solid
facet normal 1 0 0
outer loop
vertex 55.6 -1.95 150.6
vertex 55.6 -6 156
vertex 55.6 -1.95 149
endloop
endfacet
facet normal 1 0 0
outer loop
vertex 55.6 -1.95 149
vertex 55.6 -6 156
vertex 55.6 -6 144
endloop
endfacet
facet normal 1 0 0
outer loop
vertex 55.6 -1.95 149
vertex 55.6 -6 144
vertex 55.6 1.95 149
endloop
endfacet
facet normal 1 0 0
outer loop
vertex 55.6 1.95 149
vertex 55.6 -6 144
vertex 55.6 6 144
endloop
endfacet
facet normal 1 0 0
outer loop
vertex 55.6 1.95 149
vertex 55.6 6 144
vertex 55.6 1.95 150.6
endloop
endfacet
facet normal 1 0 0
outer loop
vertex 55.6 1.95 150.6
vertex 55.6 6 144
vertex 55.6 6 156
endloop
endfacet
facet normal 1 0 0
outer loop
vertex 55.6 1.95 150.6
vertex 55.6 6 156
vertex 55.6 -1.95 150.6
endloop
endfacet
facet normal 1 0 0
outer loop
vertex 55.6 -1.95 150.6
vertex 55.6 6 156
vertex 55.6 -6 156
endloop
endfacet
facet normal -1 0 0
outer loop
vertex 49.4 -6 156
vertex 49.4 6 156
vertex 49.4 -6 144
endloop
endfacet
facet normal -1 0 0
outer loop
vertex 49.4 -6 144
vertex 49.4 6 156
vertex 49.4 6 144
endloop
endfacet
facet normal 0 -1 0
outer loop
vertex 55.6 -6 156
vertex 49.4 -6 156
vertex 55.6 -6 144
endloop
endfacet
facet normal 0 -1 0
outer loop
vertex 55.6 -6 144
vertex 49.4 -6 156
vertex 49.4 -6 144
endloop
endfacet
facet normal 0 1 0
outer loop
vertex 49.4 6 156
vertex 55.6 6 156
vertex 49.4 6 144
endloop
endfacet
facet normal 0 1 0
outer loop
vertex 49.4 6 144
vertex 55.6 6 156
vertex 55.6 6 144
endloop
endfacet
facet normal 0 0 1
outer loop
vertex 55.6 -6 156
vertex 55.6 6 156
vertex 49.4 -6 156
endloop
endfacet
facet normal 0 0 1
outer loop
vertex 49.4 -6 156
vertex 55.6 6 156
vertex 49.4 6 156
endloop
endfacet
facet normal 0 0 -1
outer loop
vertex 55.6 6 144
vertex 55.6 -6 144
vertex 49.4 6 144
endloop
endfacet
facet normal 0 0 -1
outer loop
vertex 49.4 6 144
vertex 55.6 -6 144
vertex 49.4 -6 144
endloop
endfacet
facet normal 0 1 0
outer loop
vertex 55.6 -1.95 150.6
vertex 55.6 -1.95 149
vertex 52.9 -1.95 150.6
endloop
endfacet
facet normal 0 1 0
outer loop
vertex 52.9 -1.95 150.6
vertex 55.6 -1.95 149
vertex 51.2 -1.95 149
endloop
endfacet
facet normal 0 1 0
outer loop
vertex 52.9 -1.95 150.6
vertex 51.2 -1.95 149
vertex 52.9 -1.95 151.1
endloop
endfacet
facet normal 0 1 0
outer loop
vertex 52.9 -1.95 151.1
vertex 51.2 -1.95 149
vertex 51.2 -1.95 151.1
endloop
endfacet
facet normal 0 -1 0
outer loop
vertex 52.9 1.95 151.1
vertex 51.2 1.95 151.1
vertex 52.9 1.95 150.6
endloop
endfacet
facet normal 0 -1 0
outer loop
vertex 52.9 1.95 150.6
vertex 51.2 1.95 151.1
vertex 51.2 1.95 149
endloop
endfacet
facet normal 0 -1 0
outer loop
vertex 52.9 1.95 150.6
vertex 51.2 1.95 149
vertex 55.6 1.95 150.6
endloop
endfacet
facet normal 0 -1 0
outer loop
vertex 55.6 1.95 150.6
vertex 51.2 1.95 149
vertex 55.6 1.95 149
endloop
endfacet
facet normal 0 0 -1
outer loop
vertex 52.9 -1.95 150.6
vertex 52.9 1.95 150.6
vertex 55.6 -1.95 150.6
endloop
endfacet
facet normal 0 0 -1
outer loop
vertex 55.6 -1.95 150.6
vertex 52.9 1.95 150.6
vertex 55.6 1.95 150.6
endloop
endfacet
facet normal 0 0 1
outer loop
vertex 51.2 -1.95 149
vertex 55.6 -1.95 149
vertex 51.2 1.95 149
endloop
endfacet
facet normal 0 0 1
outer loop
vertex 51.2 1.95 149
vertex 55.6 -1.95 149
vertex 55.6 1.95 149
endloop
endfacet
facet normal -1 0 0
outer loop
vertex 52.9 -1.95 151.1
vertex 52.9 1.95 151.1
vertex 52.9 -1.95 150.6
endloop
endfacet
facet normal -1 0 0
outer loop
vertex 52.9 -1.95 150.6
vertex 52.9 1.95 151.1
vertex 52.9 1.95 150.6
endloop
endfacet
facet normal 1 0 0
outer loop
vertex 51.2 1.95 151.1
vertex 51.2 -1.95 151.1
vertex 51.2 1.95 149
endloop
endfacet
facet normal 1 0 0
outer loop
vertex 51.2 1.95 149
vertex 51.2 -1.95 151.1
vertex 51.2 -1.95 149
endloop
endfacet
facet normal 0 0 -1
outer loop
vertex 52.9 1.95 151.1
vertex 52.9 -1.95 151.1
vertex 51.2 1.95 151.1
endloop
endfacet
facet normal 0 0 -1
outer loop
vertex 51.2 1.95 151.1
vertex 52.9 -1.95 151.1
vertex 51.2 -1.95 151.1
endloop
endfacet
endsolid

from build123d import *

# Parameters (mm, degrees)
BOSS_EXTRUDE1_START = 144
SKETCH1_W           = 6.2
SKETCH1_H           = 12
BOSS_EXTRUDE1_DEPTH = 12
BOSS_EXTRUDE2_START = 149
SKETCH2_W           = 2.8
SKETCH2_H           = 3.9
BOSS_EXTRUDE2_DEPTH = 1.6
BOSS_EXTRUDE3_START = 149
SKETCH3_W           = 1.7
SKETCH3_H           = 3.9
BOSS_EXTRUDE3_DEPTH = 2.1


with BuildPart() as part:
    # Sketch1 → Boss-Extrude1 (new body)
    with BuildSketch(Plane.XY.offset(BOSS_EXTRUDE1_START)):
        with Locations((52.5, 0)):
            Rectangle(SKETCH1_W, SKETCH1_H)
    extrude(amount=BOSS_EXTRUDE1_DEPTH)


with BuildPart() as body_2:
    # Sketch2 → Boss-Extrude2 (new body)
    with BuildSketch(Plane.XY.offset(BOSS_EXTRUDE2_START)):
        with Locations((54.3, 0)):
            Rectangle(SKETCH2_W, SKETCH2_H)
    extrude(amount=BOSS_EXTRUDE2_DEPTH)


with BuildPart() as part_1:
    add(part.part)

    # Combine1: cut body 2
    add(body_2.part, mode=Mode.SUBTRACT)


with BuildPart() as body_2_2:
    # Sketch3 → Boss-Extrude3 (new body)
    with BuildSketch(Plane.XY.offset(BOSS_EXTRUDE3_START)):
        with Locations((52.05, 0)):
            Rectangle(SKETCH3_W, SKETCH3_H)
    extrude(amount=BOSS_EXTRUDE3_DEPTH)


with BuildPart() as part_2:
    add(part_1.part)

    # Combine2: cut body 2 2
    add(body_2_2.part, mode=Mode.SUBTRACT)


solid = part_2.part
